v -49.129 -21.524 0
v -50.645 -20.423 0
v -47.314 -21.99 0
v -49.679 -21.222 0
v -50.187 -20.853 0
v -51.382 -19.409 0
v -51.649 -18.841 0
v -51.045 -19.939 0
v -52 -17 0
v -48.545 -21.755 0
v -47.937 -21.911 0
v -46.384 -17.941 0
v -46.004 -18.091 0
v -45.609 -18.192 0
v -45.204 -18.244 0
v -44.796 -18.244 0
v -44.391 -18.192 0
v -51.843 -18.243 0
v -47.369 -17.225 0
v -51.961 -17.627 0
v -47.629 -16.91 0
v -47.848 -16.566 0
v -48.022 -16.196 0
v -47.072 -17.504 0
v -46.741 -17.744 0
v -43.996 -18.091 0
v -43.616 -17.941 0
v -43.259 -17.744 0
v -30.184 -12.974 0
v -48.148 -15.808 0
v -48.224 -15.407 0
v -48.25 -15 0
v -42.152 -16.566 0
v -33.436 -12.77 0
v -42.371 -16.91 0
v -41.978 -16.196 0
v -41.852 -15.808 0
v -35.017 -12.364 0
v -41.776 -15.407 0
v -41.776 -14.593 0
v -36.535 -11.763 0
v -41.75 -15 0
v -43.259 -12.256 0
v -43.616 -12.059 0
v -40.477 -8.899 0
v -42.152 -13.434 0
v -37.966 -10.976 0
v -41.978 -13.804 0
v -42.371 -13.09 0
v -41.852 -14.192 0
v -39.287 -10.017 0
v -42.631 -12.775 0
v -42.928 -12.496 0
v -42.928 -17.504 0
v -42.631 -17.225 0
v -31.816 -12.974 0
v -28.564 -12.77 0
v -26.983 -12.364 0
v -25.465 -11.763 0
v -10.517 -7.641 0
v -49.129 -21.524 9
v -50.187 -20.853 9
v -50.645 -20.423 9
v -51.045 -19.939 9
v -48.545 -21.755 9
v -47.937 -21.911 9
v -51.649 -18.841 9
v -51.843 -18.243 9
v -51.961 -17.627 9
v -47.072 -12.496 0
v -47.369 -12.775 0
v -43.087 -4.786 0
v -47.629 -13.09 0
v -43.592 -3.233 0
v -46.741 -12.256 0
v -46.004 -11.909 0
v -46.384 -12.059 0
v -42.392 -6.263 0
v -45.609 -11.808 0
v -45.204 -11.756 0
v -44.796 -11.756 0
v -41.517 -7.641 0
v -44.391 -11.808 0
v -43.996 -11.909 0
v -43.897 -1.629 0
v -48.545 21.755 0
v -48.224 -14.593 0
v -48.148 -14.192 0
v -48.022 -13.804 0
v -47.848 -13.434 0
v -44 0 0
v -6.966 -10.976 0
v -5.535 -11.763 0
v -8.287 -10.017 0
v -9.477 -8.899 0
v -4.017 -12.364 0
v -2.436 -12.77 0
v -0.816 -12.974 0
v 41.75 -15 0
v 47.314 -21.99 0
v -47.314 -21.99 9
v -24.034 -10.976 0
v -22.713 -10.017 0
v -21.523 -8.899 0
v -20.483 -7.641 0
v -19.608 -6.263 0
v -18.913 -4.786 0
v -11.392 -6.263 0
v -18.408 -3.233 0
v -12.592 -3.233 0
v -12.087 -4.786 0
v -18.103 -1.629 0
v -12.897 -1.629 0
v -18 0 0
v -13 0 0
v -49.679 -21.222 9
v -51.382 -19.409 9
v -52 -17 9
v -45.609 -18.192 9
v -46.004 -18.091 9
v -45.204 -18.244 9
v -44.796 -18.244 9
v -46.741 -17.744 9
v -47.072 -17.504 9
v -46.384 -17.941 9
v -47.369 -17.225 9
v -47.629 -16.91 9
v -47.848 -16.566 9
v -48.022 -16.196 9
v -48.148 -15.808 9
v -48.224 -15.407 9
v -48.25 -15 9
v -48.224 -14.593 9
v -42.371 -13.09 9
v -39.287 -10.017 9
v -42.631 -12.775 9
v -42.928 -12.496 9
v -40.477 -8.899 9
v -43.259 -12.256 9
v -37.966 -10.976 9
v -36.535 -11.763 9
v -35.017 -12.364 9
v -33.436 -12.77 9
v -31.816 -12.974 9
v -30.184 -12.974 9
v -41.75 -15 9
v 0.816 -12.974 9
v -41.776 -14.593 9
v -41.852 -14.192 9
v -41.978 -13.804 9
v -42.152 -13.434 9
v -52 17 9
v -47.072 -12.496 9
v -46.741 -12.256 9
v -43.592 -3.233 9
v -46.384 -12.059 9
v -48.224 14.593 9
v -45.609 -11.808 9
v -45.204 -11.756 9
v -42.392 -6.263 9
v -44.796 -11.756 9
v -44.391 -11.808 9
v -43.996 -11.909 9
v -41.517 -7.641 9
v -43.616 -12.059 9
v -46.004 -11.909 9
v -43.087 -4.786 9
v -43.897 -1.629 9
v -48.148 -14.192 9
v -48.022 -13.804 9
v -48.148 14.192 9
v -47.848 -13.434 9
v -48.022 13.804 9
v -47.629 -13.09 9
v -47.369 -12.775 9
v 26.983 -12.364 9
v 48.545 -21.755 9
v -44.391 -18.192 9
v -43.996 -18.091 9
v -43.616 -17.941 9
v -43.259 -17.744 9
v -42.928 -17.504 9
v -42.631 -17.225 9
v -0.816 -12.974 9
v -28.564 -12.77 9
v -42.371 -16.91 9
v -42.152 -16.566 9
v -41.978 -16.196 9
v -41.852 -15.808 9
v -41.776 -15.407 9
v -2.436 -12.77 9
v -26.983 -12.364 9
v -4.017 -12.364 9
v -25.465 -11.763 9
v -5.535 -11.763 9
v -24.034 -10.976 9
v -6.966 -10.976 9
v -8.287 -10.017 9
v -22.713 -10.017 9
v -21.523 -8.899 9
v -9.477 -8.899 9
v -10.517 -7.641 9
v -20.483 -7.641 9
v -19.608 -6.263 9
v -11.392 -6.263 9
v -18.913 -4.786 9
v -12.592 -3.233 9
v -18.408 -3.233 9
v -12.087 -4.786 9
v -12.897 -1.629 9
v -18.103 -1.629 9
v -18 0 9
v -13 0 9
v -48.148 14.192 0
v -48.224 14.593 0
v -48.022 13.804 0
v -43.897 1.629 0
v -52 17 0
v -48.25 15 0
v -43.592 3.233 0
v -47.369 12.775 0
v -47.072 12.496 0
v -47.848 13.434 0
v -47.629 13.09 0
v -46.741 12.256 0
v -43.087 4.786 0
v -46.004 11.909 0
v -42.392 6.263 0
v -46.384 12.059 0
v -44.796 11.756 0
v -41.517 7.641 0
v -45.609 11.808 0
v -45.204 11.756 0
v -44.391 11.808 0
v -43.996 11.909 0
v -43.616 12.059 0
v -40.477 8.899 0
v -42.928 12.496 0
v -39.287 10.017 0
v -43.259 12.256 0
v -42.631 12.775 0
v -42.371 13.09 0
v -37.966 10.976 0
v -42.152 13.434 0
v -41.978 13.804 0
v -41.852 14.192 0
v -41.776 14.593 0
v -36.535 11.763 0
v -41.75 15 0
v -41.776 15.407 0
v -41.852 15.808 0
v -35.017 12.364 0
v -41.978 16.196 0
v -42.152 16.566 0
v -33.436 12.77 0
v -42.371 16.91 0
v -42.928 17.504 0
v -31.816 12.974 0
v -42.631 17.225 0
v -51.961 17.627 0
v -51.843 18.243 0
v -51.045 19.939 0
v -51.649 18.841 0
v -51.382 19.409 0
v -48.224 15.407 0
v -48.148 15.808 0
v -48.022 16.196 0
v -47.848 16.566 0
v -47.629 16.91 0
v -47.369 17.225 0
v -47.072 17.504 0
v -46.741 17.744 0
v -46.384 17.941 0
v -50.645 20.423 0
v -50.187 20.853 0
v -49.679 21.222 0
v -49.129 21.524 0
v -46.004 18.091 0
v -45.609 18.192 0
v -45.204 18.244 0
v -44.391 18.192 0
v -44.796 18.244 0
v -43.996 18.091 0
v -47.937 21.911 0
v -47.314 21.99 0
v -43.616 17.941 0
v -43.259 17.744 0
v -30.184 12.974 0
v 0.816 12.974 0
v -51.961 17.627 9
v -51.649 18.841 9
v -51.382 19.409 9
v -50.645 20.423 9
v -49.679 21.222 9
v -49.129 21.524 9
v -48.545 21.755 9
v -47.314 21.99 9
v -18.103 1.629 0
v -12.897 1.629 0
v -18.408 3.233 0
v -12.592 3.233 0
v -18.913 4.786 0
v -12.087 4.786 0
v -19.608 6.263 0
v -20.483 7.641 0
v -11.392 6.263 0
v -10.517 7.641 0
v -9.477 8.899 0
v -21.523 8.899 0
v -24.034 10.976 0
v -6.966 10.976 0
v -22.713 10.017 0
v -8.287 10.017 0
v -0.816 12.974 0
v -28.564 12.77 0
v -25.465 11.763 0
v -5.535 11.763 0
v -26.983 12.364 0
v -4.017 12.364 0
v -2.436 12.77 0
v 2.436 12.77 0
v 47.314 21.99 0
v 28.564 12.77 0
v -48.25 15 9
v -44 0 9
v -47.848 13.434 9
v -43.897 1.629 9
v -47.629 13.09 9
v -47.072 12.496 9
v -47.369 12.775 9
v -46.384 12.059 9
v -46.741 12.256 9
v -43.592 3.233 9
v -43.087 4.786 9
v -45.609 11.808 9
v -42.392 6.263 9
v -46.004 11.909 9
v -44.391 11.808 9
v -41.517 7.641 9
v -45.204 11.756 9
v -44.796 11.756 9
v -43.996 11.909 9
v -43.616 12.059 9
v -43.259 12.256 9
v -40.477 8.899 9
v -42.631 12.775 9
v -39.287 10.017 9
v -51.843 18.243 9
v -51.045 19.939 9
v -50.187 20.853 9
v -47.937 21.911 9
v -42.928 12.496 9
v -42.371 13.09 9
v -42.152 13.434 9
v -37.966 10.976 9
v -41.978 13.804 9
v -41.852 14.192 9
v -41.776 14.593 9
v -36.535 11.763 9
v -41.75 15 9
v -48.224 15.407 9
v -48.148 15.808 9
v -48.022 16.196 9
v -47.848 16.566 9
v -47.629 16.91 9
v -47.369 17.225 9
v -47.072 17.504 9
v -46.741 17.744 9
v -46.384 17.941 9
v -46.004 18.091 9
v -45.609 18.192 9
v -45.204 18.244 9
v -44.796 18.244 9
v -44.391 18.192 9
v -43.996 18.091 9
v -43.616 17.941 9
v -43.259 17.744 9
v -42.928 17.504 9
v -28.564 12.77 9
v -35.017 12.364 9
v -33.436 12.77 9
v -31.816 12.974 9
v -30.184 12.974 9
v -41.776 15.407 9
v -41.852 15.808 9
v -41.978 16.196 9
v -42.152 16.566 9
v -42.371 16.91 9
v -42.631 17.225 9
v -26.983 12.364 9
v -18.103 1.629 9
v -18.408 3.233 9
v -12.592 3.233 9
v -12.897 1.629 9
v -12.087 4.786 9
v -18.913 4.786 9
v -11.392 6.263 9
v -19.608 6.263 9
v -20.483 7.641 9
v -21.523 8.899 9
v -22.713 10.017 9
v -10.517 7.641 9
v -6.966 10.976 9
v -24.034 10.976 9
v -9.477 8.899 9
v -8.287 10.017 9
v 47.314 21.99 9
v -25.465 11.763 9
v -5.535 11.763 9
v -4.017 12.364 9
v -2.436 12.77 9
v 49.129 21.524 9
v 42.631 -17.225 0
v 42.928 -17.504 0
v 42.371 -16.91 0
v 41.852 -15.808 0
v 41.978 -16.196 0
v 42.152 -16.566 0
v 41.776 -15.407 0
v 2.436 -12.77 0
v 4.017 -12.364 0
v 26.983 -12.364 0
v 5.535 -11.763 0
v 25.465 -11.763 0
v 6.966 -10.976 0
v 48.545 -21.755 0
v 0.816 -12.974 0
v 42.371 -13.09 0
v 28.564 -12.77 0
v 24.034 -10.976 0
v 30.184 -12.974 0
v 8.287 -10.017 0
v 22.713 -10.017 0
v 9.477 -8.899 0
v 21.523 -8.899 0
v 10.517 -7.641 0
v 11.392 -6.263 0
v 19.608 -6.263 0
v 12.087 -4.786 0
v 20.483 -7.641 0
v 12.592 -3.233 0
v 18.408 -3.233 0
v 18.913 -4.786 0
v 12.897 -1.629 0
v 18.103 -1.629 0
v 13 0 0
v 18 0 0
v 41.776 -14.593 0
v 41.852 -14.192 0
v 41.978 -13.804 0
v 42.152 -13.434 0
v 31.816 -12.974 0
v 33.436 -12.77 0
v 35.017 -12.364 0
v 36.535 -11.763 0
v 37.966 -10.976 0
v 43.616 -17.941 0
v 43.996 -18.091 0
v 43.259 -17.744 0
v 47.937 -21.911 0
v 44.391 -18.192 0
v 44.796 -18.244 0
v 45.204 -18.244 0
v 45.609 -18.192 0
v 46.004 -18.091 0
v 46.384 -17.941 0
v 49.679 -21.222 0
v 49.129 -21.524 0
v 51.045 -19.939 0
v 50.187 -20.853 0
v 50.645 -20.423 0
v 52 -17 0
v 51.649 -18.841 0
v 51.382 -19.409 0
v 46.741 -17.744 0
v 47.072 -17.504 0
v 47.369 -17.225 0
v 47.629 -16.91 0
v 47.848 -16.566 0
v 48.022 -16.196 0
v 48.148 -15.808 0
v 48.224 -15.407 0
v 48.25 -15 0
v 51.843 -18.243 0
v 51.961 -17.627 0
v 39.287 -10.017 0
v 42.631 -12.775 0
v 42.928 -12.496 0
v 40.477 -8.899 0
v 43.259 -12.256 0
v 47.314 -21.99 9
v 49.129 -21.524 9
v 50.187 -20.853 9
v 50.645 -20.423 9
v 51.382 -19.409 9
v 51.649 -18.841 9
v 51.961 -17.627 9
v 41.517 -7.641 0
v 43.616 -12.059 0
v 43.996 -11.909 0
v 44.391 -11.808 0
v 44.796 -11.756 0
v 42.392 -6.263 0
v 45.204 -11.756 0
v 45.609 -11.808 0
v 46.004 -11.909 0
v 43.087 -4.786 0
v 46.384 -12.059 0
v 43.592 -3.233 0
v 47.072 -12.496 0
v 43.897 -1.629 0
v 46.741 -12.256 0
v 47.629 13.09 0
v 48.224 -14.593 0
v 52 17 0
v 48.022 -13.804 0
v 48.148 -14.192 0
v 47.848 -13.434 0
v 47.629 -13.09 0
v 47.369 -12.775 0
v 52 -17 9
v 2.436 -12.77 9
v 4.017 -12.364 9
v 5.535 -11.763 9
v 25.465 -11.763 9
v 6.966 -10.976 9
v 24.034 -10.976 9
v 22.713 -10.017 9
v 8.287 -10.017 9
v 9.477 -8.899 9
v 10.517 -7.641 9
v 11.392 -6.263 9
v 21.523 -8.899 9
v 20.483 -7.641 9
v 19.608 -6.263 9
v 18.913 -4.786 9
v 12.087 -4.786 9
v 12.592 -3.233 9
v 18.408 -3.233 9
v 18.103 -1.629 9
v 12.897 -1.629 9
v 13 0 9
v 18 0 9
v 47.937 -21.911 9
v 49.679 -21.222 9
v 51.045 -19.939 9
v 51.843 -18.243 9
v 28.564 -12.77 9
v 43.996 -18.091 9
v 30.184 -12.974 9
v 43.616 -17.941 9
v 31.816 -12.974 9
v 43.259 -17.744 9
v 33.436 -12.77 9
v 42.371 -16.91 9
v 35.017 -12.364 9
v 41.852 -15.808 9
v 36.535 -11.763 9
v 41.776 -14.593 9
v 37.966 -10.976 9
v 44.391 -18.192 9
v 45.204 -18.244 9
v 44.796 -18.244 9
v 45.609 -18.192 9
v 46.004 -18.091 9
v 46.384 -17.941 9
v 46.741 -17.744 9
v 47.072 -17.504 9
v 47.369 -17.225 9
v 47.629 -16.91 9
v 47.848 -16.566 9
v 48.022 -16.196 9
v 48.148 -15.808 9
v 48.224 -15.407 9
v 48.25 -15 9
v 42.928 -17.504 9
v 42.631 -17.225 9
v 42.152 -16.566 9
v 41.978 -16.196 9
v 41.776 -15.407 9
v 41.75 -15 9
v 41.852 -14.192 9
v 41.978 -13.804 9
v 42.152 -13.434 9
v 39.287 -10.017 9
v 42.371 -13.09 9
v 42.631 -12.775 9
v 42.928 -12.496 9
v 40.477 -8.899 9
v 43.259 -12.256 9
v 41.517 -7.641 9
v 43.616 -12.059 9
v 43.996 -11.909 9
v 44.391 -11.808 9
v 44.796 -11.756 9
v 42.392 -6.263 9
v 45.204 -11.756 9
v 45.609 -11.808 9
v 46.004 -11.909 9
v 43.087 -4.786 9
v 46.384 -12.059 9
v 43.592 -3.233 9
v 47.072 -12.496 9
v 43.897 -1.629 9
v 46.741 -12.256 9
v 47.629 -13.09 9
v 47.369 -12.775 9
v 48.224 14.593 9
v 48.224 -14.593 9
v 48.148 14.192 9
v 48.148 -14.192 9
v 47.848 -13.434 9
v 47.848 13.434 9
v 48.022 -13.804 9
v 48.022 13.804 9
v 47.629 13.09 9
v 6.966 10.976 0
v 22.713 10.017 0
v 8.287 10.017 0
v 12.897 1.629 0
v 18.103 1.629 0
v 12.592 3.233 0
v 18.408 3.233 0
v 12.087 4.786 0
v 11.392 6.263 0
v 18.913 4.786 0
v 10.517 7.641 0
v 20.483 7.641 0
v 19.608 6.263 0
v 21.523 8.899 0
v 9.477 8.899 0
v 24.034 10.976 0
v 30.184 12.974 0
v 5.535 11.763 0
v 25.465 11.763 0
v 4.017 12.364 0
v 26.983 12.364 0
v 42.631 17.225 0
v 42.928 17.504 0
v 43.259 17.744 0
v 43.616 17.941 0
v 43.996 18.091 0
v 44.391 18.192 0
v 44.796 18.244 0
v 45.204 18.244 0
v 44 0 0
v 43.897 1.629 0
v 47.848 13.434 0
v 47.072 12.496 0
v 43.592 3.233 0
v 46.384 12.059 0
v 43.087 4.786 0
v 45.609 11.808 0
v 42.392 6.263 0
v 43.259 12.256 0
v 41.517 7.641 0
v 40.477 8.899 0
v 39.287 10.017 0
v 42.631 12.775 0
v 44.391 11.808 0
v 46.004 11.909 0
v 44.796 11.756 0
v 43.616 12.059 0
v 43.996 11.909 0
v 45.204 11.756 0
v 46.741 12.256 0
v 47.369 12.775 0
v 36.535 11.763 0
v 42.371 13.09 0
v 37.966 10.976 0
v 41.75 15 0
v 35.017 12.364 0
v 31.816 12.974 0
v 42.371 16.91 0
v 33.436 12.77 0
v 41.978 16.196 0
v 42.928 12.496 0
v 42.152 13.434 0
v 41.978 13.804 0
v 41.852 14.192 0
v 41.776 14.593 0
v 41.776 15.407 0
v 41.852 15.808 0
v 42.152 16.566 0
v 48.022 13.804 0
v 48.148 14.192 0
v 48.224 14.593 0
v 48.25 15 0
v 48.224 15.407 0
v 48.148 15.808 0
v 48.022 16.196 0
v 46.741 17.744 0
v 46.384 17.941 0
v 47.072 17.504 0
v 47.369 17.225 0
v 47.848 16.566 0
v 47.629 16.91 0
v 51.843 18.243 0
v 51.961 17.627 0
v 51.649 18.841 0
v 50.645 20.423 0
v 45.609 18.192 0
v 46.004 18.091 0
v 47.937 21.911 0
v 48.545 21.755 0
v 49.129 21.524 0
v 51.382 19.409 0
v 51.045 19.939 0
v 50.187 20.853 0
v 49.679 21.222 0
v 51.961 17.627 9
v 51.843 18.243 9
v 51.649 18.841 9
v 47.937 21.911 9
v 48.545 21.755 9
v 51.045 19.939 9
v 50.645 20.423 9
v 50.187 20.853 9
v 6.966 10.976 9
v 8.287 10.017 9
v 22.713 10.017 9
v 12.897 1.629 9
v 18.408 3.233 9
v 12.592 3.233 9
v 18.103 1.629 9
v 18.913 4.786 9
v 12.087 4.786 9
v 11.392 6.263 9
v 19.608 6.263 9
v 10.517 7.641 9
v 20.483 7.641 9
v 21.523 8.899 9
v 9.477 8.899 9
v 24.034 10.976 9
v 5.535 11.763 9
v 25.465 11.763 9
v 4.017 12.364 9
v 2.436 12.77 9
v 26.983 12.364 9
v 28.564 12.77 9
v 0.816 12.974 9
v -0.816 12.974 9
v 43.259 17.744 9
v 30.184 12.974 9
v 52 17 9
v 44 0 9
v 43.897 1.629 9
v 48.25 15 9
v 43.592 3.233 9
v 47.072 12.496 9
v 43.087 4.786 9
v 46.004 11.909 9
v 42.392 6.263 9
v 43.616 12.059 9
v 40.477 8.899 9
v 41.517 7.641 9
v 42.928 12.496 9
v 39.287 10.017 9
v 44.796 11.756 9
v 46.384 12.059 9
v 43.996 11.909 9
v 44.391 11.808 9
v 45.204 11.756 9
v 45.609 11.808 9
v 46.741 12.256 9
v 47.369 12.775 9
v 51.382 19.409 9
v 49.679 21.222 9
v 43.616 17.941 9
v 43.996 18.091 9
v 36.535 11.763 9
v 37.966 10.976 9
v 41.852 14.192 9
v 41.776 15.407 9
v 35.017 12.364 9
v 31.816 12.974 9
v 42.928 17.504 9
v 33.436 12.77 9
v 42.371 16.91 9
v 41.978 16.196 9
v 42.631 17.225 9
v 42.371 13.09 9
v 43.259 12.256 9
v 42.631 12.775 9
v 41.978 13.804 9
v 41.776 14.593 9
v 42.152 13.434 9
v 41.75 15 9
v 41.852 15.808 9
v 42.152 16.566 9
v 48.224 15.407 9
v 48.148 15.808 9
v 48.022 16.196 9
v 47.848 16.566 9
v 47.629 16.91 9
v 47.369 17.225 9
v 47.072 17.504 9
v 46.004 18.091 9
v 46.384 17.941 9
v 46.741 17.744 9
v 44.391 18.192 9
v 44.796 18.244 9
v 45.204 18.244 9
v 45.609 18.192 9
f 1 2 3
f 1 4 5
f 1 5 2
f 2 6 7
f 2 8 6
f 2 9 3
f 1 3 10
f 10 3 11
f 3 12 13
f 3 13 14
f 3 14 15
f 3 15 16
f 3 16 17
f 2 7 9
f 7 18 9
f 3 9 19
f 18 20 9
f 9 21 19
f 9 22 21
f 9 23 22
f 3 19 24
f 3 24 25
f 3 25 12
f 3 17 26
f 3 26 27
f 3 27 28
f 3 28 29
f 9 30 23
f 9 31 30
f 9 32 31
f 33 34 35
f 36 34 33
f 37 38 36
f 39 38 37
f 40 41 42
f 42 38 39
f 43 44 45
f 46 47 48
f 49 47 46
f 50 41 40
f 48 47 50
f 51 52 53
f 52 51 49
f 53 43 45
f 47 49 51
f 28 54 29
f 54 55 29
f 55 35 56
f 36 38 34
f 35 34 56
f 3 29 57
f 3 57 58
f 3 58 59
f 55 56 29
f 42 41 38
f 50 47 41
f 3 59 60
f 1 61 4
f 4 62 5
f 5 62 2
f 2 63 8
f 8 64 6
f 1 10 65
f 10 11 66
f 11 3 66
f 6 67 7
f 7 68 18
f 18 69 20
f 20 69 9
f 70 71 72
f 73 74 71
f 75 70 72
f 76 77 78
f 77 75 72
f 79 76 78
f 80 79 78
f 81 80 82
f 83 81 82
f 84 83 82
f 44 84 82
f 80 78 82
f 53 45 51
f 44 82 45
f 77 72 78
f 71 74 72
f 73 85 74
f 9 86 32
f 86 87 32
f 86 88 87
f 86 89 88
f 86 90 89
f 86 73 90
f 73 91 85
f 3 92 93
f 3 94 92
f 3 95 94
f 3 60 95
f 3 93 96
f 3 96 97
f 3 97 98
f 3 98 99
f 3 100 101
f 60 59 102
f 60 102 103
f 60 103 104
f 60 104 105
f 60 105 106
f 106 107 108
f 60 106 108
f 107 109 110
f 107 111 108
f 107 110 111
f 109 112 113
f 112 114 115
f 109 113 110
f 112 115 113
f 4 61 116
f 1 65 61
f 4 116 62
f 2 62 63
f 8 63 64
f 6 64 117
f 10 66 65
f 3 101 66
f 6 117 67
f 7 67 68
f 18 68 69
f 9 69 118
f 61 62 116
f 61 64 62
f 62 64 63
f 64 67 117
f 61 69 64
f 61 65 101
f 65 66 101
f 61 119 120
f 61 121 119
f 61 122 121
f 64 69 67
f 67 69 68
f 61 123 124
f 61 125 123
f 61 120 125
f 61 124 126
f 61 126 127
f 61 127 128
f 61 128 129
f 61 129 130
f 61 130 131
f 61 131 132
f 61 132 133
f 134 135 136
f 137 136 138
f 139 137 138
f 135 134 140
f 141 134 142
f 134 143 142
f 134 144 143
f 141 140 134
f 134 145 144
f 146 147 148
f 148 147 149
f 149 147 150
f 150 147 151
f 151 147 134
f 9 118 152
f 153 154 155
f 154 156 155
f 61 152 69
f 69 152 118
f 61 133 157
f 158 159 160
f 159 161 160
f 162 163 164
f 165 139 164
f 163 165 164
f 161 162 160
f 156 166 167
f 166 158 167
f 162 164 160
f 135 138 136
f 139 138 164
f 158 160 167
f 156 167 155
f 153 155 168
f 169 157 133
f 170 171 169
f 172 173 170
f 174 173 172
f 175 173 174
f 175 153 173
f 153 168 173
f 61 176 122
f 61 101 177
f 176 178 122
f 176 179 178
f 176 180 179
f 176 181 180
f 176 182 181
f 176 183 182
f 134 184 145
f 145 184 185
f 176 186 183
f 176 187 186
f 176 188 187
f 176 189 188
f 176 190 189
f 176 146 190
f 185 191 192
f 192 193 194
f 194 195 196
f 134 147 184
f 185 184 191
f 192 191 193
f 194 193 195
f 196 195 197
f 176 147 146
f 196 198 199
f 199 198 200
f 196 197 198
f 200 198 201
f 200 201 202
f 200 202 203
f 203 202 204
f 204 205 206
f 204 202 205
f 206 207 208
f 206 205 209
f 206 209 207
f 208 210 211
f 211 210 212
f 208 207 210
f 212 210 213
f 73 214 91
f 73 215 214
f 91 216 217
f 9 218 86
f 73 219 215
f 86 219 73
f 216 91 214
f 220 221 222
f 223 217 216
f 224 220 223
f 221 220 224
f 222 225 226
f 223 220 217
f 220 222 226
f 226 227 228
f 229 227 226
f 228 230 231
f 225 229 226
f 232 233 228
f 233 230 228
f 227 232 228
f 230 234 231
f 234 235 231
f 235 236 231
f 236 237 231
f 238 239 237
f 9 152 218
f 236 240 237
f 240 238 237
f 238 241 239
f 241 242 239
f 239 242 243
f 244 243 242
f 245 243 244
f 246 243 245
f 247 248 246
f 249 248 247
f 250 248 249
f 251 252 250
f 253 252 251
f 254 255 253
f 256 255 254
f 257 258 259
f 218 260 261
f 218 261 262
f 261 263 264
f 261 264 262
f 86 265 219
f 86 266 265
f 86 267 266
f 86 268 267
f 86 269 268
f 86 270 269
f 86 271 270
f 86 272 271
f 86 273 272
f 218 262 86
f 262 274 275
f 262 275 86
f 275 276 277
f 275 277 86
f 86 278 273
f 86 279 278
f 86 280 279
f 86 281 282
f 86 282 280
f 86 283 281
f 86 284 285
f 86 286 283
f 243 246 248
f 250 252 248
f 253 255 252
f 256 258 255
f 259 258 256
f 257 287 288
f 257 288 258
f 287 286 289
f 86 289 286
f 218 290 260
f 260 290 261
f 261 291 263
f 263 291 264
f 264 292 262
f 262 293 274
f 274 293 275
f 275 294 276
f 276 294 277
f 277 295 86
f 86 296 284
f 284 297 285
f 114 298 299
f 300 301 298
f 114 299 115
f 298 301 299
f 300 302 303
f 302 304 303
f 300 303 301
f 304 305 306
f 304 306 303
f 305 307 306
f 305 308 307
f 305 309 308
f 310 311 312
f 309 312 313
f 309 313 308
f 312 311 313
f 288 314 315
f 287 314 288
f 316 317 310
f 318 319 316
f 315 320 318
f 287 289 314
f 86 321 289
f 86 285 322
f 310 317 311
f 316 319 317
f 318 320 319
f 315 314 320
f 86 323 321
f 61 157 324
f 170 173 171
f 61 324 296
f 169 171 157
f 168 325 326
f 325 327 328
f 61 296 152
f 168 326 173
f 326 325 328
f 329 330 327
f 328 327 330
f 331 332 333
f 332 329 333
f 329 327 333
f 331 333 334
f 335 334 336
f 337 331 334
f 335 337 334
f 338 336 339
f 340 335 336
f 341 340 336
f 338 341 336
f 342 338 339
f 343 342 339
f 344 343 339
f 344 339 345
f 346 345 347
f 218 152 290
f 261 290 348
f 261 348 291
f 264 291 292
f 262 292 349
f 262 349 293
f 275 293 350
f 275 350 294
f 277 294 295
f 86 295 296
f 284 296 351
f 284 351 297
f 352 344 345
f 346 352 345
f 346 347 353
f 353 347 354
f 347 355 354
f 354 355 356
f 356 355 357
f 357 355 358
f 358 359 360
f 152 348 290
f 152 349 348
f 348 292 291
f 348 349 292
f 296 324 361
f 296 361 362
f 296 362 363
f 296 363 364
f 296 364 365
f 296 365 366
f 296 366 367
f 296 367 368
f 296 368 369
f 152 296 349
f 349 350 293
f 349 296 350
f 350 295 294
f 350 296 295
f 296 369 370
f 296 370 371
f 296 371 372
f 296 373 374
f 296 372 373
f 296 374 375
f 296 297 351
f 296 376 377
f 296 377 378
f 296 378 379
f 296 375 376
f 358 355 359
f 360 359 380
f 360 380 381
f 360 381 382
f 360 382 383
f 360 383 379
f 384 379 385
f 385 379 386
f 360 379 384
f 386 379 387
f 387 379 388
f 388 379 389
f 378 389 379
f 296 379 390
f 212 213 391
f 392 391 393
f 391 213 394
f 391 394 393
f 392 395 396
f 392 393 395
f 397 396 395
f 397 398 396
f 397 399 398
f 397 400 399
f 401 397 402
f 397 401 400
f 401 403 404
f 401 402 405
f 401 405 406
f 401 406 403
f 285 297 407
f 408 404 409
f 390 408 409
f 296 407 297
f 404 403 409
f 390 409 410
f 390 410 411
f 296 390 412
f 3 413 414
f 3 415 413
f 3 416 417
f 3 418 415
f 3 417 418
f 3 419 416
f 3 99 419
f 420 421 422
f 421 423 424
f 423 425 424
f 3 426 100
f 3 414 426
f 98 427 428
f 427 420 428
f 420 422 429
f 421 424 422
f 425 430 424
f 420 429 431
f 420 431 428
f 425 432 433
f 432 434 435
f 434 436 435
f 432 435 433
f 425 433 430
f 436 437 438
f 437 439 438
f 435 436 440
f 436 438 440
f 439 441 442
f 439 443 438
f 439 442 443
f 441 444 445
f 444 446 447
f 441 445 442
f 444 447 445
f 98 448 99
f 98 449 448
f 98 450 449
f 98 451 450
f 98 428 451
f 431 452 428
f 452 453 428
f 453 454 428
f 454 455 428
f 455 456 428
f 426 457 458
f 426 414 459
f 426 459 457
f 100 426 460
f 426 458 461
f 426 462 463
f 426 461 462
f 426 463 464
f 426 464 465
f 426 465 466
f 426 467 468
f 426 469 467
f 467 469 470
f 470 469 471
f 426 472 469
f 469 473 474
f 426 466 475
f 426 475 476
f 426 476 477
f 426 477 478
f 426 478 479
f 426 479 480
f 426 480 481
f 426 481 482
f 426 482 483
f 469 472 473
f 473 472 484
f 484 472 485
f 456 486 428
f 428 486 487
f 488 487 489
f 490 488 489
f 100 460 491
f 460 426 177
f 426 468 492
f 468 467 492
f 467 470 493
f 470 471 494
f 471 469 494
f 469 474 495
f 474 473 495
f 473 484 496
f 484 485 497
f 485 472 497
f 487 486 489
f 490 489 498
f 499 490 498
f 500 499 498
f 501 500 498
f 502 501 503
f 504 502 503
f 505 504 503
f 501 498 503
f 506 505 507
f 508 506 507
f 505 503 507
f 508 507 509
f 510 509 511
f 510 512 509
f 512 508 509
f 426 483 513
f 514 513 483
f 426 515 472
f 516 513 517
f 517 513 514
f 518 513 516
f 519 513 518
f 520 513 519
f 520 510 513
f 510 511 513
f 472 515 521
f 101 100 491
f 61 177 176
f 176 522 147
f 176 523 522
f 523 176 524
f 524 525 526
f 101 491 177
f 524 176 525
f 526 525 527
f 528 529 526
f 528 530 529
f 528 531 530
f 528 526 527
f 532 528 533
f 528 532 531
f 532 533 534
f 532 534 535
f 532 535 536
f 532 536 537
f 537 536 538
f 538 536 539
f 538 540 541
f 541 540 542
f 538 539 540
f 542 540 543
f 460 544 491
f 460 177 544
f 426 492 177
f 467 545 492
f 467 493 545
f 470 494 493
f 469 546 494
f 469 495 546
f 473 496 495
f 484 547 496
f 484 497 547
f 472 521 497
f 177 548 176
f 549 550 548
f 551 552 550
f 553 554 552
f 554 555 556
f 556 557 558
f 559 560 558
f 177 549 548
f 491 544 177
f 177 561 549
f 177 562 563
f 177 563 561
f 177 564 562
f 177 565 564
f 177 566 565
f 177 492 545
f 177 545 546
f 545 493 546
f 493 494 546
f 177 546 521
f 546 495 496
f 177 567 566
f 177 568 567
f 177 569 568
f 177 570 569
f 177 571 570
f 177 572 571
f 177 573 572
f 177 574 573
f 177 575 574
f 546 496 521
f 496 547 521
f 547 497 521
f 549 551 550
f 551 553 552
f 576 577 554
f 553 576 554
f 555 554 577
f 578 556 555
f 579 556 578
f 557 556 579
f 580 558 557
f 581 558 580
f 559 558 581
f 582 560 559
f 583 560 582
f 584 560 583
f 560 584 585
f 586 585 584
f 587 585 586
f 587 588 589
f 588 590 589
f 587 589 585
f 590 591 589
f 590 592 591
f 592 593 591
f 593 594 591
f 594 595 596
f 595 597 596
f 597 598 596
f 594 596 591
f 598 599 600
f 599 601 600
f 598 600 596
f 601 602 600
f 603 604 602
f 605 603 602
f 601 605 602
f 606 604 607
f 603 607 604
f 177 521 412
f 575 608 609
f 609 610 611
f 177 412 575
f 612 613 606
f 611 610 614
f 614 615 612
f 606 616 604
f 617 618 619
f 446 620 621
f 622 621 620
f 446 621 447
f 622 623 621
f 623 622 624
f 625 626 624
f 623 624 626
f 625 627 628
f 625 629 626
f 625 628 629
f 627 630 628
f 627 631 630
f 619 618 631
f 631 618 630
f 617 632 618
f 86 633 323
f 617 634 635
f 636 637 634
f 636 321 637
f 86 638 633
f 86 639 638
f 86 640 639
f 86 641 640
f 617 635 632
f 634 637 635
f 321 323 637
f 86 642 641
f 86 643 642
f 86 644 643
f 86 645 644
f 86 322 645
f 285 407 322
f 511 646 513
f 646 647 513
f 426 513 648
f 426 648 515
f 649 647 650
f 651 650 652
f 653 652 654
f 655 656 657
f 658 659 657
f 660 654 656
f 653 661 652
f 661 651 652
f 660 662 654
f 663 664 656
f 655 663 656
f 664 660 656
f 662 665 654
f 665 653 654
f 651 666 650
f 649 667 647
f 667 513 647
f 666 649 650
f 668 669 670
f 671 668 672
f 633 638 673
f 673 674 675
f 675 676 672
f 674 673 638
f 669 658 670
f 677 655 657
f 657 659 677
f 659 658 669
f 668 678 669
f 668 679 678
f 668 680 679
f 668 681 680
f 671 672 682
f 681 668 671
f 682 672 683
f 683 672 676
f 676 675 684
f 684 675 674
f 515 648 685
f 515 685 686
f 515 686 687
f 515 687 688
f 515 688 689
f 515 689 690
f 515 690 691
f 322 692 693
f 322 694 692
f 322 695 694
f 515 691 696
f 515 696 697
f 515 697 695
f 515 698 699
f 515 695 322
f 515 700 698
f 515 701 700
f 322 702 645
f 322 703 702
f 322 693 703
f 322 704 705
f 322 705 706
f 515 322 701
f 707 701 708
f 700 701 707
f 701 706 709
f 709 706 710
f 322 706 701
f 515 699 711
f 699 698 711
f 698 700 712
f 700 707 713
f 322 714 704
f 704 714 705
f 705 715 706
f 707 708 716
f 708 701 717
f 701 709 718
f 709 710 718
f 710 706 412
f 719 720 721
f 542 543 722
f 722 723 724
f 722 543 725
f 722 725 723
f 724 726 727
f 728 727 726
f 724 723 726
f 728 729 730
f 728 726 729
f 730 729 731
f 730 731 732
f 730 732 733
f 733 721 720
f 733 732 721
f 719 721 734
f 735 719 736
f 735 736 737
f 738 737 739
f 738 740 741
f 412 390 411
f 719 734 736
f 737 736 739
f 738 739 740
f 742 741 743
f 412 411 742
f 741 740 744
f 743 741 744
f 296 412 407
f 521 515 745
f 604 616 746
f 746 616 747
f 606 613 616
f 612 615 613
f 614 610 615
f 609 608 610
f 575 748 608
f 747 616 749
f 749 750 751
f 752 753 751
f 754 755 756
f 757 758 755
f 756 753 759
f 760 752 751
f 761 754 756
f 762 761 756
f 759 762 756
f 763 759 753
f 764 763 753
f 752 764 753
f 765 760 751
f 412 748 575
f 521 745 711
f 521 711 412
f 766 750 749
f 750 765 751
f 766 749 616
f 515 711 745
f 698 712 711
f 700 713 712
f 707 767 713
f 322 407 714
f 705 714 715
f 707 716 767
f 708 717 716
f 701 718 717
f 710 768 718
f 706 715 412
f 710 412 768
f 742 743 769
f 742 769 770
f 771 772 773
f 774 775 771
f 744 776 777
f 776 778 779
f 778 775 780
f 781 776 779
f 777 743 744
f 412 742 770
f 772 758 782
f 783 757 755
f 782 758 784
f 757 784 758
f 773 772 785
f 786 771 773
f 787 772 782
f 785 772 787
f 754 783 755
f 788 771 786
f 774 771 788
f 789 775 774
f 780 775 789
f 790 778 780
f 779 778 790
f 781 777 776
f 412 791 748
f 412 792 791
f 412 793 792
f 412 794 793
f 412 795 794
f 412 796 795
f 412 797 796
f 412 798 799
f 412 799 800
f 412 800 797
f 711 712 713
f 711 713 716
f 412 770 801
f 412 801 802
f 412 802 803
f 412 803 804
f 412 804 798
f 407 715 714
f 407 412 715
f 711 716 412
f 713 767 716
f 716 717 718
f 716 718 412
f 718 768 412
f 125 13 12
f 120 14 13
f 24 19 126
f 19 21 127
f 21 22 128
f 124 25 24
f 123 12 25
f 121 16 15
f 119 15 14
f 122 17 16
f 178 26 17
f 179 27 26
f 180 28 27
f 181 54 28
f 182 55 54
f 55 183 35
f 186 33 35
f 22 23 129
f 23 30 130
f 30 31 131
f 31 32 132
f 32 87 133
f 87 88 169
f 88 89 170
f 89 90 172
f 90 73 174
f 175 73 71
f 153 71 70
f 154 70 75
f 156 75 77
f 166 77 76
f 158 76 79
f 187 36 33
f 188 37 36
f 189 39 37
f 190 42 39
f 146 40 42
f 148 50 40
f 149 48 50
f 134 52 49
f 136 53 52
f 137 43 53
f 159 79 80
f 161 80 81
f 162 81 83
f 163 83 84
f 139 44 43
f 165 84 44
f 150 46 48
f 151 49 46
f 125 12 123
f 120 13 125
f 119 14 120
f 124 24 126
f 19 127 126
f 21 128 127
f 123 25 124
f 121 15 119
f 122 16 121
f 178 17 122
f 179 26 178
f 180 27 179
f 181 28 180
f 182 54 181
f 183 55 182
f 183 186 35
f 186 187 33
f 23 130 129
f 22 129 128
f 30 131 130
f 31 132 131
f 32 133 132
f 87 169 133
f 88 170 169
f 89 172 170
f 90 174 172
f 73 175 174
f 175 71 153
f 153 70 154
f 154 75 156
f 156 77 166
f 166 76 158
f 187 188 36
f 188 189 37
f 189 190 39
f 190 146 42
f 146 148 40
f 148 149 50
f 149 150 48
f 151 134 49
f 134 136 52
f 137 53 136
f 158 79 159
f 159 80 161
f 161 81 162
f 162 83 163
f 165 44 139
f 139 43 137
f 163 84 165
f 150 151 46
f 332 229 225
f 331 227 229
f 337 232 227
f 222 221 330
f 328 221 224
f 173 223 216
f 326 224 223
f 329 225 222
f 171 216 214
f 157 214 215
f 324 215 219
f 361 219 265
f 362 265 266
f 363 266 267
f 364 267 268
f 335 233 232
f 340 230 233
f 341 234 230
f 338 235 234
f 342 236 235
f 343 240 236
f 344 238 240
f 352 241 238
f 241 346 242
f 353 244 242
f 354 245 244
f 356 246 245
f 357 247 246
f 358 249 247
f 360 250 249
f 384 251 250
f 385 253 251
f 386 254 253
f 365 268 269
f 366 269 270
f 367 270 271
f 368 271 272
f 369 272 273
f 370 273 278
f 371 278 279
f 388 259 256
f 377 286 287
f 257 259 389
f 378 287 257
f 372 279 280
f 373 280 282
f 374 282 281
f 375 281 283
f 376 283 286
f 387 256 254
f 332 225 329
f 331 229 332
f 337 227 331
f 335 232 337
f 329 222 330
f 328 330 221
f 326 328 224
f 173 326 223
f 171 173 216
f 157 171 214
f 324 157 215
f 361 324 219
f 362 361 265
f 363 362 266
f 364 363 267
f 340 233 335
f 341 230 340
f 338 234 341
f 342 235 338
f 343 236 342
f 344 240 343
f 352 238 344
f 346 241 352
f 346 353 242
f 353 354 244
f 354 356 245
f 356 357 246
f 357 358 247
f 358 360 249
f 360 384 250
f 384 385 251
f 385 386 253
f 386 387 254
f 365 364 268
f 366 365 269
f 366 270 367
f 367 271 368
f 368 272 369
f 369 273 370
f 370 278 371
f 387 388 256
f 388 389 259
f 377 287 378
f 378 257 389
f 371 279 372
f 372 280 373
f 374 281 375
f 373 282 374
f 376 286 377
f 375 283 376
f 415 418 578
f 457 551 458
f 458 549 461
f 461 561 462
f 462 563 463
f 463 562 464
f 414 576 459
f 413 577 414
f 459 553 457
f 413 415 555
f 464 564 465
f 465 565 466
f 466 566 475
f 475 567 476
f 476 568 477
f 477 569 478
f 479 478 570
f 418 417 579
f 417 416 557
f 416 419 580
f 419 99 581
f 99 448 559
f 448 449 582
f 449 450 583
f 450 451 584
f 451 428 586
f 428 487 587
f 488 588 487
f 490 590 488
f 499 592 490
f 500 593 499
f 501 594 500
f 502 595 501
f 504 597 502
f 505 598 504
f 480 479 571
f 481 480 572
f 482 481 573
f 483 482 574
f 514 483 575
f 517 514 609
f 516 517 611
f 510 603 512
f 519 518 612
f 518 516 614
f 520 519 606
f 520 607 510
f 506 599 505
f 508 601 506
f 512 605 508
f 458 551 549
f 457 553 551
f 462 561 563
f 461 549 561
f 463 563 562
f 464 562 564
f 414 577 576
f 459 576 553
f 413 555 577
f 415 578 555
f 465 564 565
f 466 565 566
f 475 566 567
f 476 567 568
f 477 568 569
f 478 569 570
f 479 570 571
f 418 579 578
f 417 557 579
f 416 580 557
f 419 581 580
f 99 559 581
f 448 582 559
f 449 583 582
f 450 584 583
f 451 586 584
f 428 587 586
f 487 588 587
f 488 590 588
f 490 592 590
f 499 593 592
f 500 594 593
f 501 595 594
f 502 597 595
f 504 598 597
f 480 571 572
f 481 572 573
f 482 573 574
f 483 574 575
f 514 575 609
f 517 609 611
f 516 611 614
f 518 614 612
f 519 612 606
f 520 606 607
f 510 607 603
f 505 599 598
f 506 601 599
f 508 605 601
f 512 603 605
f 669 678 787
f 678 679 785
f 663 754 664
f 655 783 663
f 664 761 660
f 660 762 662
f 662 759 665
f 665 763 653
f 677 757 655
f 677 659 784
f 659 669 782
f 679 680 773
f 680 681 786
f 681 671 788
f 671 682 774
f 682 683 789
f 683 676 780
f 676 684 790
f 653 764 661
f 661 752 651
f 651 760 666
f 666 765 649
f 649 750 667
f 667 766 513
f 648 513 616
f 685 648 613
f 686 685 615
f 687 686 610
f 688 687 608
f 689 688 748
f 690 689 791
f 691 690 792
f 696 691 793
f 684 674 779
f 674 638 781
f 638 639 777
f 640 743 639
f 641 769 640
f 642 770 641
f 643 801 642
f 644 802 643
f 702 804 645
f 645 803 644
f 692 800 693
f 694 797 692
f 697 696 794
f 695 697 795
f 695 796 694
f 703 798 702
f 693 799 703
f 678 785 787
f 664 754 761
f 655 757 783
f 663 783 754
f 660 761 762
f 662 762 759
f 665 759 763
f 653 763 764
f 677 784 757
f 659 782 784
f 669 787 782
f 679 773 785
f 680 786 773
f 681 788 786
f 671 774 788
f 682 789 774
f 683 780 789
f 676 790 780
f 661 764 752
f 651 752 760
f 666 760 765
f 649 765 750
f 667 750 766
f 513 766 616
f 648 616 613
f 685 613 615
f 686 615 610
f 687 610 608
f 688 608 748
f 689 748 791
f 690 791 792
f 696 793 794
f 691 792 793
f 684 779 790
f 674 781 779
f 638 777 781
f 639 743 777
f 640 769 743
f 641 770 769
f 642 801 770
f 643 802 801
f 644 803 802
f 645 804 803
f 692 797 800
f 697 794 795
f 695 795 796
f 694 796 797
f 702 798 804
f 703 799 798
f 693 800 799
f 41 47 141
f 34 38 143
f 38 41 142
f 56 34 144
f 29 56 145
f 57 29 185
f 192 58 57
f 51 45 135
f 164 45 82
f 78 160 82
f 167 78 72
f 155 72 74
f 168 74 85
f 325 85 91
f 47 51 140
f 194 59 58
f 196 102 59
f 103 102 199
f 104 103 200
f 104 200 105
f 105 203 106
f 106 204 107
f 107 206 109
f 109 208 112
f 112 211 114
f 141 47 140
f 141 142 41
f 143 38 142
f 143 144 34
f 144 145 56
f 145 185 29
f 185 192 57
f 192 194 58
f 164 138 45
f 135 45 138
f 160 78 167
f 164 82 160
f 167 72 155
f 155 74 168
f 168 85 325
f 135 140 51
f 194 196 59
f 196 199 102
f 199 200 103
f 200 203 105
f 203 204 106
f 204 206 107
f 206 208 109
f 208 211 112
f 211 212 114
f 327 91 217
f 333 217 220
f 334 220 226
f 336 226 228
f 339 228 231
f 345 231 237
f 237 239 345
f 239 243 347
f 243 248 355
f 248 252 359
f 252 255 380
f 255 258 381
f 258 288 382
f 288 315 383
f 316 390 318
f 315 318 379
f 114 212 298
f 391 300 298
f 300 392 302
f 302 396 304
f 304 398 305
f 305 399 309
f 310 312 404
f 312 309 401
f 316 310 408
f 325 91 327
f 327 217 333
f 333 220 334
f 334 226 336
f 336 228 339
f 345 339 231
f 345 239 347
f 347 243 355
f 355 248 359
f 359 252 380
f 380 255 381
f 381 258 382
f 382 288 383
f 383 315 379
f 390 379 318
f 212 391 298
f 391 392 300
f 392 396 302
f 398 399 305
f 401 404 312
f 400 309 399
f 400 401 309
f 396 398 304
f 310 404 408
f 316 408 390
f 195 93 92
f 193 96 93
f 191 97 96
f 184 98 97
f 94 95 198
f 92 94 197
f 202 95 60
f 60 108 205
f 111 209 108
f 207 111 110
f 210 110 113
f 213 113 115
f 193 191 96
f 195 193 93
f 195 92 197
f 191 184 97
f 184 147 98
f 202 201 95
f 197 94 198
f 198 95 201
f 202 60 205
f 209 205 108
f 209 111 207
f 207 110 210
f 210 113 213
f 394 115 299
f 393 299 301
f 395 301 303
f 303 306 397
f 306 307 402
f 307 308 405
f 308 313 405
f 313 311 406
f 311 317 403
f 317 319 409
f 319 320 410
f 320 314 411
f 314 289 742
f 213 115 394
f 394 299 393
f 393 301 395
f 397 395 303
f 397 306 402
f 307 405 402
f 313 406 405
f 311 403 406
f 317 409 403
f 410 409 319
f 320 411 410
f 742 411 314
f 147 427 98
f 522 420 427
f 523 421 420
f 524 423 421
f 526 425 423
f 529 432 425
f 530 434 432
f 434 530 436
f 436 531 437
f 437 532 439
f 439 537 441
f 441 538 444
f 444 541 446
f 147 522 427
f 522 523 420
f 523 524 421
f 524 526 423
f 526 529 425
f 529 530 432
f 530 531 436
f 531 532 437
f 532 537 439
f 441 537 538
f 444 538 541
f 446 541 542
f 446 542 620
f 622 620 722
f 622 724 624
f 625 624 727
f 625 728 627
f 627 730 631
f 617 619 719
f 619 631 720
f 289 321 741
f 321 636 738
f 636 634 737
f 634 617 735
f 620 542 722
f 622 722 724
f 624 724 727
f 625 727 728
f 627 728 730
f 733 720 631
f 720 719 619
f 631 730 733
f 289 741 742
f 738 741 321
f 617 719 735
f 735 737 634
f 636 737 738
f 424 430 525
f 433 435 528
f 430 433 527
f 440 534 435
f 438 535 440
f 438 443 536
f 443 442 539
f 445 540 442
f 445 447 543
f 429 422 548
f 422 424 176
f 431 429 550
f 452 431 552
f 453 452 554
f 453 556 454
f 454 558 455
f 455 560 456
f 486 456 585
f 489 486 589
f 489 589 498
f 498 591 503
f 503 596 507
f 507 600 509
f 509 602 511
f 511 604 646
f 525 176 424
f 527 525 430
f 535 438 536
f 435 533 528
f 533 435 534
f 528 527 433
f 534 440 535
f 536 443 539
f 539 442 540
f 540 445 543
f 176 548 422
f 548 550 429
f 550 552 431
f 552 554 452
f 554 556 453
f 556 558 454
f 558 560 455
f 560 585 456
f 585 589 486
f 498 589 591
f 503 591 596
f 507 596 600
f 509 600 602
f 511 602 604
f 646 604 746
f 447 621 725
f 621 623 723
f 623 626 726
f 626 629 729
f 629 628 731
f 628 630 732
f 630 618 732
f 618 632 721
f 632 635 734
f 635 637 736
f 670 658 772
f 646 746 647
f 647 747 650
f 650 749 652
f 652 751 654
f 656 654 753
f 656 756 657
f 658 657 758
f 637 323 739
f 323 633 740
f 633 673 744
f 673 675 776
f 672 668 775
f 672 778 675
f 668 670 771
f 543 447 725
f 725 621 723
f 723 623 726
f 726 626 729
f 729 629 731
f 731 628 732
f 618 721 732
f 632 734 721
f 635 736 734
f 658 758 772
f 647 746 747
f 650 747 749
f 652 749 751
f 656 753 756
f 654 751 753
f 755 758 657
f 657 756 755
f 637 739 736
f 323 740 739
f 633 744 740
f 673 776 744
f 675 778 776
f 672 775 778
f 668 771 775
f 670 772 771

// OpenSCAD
$fn = 50;

difference() {
	union() {
		hull() {
			translate(v = [-47.0, 17.0, 0]) {
				cylinder(h = 9, r = 5);
			}
			translate(v = [47.0, 17.0, 0]) {
				cylinder(h = 9, r = 5);
			}
			translate(v = [-47.0, -17.0, 0]) {
				cylinder(h = 9, r = 5);
			}
			translate(v = [47.0, -17.0, 0]) {
				cylinder(h = 9, r = 5);
			}
		}
	}
	union() {
		translate(v = [-45.0, -15.0, -100.0]) {
			cylinder(h = 200, r = 3.25);
		}
		translate(v = [-45.0, 15.0, -100.0]) {
			cylinder(h = 200, r = 3.25);
		}
		translate(v = [45.0, -15.0, -100.0]) {
			cylinder(h = 200, r = 3.25);
		}
		translate(v = [45.0, 15.0, -100.0]) {
			cylinder(h = 200, r = 3.25);
		}
		translate(v = [-45.0, -15.0, -100.0]) {
			cylinder(h = 200, r = 1.8);
		}
		translate(v = [-45.0, 15.0, -100.0]) {
			cylinder(h = 200, r = 1.8);
		}
		translate(v = [45.0, -15.0, -100.0]) {
			cylinder(h = 200, r = 1.8);
		}
		translate(v = [45.0, 15.0, -100.0]) {
			cylinder(h = 200, r = 1.8);
		}
		translate(v = [-31.0, 0, 0.0]) {
			cylinder(h = 9, r = 13.0);
		}
		cylinder(h = 9, r = 13.0);
		translate(v = [31.0, 0, 0.0]) {
			cylinder(h = 9, r = 13.0);
		}
	}
}
